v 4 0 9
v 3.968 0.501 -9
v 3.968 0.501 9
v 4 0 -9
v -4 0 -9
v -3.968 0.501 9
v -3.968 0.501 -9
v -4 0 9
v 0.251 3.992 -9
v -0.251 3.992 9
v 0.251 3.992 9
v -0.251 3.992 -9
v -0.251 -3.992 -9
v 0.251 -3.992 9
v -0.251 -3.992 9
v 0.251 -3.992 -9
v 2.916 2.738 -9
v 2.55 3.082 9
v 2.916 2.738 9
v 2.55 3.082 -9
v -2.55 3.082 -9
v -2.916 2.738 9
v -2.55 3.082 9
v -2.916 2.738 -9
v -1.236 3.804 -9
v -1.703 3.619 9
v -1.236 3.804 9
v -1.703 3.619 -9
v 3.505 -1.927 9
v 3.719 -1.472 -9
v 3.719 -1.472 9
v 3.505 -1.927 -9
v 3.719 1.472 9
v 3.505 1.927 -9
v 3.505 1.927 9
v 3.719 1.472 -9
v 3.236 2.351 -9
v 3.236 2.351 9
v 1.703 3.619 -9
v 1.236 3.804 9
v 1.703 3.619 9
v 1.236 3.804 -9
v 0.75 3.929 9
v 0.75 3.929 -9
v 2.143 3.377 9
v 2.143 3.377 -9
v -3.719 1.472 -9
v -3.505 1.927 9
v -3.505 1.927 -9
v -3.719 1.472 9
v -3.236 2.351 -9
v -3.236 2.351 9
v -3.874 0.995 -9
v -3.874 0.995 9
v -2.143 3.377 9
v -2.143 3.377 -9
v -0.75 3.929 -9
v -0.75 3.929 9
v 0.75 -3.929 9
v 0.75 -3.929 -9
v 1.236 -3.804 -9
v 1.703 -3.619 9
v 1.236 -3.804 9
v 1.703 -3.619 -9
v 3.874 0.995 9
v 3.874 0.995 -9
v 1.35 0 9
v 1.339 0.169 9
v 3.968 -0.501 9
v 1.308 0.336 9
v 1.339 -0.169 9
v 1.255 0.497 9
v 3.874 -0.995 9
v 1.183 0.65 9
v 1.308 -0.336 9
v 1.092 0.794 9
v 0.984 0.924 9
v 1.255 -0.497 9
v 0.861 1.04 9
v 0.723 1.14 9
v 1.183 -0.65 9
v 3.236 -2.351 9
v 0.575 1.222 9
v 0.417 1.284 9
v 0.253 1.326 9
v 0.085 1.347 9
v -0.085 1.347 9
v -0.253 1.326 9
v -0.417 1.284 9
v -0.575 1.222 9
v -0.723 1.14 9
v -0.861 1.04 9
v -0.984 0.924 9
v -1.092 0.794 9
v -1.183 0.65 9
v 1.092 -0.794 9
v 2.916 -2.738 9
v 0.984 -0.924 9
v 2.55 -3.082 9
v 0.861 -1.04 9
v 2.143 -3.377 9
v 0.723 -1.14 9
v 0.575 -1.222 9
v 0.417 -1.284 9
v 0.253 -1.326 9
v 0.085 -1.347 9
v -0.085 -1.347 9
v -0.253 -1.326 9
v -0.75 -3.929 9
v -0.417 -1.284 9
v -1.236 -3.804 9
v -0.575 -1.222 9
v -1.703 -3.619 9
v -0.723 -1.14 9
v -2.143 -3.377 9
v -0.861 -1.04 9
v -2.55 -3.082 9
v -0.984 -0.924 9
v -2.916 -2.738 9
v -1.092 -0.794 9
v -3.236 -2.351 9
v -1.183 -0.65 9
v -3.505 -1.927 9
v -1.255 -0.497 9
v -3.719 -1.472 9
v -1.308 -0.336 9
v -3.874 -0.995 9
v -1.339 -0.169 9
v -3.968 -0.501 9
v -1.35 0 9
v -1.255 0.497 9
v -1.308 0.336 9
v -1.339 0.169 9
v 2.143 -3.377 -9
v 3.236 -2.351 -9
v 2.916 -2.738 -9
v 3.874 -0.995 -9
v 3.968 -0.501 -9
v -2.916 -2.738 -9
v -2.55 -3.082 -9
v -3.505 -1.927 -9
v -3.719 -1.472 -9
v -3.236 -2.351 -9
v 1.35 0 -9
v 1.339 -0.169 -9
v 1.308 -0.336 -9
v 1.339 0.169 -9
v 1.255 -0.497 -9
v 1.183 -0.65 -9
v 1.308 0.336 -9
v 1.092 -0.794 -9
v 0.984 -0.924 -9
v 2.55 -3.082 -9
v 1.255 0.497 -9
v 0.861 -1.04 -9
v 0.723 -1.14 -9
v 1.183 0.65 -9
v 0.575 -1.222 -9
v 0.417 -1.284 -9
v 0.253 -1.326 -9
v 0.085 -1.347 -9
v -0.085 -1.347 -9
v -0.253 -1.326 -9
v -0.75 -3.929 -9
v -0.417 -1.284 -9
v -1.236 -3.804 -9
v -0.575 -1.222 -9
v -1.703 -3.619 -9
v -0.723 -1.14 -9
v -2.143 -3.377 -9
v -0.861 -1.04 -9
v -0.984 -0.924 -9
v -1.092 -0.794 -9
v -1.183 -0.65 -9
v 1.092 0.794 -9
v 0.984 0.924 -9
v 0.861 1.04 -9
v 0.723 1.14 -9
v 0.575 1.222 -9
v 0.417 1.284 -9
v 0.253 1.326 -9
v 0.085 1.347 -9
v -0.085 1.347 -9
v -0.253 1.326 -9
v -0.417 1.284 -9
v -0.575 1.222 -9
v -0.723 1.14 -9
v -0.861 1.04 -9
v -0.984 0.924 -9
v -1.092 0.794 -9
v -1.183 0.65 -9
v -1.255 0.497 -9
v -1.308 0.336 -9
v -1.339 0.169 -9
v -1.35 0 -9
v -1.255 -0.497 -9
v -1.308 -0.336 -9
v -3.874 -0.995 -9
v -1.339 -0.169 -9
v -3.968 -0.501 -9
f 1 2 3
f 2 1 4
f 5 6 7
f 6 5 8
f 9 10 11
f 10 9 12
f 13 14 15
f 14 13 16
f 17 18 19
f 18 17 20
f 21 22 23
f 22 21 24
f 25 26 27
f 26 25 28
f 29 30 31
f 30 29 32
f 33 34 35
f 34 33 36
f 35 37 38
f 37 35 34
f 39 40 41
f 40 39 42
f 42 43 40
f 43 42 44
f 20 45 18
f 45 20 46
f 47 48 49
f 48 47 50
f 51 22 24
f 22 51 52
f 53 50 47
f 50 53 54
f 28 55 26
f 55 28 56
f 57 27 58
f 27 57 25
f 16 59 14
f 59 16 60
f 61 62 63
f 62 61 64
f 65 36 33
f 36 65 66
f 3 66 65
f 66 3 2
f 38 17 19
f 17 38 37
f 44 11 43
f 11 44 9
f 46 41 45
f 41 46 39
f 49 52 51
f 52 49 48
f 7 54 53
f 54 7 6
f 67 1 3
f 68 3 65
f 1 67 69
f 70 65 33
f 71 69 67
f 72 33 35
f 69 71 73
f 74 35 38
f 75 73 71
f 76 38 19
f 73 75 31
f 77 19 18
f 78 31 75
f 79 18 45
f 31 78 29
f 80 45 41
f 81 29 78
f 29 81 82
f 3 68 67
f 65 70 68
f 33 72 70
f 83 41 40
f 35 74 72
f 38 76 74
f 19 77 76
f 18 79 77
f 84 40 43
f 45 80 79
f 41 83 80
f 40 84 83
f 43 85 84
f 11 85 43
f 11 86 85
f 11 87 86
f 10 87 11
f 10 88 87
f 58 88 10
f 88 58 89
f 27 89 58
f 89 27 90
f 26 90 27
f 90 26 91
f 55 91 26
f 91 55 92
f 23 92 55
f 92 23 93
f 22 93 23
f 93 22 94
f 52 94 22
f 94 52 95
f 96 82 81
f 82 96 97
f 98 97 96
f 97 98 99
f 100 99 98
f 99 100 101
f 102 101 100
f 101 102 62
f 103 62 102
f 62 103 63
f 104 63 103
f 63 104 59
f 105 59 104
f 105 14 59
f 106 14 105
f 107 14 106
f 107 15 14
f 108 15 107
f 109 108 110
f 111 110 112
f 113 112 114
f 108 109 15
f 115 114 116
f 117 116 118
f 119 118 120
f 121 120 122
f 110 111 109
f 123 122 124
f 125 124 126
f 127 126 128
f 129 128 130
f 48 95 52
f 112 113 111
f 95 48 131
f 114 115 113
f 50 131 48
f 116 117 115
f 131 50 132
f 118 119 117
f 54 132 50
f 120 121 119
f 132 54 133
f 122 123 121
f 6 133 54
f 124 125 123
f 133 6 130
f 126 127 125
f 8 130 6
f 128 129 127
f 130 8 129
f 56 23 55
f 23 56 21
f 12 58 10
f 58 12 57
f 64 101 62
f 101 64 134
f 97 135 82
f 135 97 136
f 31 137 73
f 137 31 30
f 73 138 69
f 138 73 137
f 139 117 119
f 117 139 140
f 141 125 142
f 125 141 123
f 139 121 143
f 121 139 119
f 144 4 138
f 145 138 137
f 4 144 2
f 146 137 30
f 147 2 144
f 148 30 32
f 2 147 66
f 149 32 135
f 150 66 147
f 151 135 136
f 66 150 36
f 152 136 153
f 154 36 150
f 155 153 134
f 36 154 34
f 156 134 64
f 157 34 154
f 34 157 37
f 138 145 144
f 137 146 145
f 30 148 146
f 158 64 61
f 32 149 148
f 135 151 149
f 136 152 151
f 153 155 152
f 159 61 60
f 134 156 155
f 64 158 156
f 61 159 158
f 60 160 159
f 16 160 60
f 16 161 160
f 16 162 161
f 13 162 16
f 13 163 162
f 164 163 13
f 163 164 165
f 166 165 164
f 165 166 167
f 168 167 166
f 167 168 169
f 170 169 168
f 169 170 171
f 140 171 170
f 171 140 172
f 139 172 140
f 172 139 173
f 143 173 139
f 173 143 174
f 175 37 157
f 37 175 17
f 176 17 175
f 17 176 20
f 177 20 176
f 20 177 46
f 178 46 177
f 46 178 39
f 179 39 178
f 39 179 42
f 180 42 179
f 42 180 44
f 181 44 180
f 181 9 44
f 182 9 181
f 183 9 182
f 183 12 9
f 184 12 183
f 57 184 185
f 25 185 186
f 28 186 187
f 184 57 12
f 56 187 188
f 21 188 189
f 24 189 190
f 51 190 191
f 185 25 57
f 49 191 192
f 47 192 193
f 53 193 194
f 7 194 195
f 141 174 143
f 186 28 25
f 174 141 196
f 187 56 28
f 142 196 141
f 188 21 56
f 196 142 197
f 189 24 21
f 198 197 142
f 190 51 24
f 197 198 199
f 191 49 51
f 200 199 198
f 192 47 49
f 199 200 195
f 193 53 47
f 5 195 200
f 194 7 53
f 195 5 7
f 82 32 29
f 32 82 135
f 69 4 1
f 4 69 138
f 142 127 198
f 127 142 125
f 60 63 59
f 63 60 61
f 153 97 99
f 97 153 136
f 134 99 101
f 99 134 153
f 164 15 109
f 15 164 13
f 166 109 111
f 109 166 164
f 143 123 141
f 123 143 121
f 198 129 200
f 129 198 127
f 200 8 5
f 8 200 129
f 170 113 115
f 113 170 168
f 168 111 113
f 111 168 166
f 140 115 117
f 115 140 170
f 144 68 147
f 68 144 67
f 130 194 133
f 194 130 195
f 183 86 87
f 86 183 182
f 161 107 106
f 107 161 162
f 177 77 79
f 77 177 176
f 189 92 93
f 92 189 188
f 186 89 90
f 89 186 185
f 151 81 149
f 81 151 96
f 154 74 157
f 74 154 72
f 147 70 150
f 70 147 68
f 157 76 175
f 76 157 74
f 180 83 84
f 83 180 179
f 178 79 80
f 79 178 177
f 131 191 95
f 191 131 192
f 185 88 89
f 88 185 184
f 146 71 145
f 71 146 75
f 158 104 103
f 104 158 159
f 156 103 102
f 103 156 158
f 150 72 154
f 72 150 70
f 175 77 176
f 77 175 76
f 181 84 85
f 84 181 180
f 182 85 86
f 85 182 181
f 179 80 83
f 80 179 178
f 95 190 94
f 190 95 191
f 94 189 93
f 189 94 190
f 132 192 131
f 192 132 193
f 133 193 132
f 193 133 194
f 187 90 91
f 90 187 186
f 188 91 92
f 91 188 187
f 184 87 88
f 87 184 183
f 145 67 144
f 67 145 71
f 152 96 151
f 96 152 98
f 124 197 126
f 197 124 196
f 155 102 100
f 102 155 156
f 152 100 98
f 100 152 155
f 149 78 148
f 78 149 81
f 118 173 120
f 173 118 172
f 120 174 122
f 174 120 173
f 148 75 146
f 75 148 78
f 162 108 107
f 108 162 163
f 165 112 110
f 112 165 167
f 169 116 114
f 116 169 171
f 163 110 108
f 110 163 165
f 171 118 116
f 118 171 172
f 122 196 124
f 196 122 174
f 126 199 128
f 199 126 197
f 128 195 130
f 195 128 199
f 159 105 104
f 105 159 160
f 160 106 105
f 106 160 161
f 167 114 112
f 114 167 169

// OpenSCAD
$fn = 50;


difference() {
	union() {
		translate(v = [0, 0, -9.0000000000]) {
			cylinder(h = 18, r = 4.0000000000);
		}
	}
	union() {
		translate(v = [0, 0, -100.0000000000]) {
			cylinder(h = 200, r = 1.3500000000);
		}
	}
}
